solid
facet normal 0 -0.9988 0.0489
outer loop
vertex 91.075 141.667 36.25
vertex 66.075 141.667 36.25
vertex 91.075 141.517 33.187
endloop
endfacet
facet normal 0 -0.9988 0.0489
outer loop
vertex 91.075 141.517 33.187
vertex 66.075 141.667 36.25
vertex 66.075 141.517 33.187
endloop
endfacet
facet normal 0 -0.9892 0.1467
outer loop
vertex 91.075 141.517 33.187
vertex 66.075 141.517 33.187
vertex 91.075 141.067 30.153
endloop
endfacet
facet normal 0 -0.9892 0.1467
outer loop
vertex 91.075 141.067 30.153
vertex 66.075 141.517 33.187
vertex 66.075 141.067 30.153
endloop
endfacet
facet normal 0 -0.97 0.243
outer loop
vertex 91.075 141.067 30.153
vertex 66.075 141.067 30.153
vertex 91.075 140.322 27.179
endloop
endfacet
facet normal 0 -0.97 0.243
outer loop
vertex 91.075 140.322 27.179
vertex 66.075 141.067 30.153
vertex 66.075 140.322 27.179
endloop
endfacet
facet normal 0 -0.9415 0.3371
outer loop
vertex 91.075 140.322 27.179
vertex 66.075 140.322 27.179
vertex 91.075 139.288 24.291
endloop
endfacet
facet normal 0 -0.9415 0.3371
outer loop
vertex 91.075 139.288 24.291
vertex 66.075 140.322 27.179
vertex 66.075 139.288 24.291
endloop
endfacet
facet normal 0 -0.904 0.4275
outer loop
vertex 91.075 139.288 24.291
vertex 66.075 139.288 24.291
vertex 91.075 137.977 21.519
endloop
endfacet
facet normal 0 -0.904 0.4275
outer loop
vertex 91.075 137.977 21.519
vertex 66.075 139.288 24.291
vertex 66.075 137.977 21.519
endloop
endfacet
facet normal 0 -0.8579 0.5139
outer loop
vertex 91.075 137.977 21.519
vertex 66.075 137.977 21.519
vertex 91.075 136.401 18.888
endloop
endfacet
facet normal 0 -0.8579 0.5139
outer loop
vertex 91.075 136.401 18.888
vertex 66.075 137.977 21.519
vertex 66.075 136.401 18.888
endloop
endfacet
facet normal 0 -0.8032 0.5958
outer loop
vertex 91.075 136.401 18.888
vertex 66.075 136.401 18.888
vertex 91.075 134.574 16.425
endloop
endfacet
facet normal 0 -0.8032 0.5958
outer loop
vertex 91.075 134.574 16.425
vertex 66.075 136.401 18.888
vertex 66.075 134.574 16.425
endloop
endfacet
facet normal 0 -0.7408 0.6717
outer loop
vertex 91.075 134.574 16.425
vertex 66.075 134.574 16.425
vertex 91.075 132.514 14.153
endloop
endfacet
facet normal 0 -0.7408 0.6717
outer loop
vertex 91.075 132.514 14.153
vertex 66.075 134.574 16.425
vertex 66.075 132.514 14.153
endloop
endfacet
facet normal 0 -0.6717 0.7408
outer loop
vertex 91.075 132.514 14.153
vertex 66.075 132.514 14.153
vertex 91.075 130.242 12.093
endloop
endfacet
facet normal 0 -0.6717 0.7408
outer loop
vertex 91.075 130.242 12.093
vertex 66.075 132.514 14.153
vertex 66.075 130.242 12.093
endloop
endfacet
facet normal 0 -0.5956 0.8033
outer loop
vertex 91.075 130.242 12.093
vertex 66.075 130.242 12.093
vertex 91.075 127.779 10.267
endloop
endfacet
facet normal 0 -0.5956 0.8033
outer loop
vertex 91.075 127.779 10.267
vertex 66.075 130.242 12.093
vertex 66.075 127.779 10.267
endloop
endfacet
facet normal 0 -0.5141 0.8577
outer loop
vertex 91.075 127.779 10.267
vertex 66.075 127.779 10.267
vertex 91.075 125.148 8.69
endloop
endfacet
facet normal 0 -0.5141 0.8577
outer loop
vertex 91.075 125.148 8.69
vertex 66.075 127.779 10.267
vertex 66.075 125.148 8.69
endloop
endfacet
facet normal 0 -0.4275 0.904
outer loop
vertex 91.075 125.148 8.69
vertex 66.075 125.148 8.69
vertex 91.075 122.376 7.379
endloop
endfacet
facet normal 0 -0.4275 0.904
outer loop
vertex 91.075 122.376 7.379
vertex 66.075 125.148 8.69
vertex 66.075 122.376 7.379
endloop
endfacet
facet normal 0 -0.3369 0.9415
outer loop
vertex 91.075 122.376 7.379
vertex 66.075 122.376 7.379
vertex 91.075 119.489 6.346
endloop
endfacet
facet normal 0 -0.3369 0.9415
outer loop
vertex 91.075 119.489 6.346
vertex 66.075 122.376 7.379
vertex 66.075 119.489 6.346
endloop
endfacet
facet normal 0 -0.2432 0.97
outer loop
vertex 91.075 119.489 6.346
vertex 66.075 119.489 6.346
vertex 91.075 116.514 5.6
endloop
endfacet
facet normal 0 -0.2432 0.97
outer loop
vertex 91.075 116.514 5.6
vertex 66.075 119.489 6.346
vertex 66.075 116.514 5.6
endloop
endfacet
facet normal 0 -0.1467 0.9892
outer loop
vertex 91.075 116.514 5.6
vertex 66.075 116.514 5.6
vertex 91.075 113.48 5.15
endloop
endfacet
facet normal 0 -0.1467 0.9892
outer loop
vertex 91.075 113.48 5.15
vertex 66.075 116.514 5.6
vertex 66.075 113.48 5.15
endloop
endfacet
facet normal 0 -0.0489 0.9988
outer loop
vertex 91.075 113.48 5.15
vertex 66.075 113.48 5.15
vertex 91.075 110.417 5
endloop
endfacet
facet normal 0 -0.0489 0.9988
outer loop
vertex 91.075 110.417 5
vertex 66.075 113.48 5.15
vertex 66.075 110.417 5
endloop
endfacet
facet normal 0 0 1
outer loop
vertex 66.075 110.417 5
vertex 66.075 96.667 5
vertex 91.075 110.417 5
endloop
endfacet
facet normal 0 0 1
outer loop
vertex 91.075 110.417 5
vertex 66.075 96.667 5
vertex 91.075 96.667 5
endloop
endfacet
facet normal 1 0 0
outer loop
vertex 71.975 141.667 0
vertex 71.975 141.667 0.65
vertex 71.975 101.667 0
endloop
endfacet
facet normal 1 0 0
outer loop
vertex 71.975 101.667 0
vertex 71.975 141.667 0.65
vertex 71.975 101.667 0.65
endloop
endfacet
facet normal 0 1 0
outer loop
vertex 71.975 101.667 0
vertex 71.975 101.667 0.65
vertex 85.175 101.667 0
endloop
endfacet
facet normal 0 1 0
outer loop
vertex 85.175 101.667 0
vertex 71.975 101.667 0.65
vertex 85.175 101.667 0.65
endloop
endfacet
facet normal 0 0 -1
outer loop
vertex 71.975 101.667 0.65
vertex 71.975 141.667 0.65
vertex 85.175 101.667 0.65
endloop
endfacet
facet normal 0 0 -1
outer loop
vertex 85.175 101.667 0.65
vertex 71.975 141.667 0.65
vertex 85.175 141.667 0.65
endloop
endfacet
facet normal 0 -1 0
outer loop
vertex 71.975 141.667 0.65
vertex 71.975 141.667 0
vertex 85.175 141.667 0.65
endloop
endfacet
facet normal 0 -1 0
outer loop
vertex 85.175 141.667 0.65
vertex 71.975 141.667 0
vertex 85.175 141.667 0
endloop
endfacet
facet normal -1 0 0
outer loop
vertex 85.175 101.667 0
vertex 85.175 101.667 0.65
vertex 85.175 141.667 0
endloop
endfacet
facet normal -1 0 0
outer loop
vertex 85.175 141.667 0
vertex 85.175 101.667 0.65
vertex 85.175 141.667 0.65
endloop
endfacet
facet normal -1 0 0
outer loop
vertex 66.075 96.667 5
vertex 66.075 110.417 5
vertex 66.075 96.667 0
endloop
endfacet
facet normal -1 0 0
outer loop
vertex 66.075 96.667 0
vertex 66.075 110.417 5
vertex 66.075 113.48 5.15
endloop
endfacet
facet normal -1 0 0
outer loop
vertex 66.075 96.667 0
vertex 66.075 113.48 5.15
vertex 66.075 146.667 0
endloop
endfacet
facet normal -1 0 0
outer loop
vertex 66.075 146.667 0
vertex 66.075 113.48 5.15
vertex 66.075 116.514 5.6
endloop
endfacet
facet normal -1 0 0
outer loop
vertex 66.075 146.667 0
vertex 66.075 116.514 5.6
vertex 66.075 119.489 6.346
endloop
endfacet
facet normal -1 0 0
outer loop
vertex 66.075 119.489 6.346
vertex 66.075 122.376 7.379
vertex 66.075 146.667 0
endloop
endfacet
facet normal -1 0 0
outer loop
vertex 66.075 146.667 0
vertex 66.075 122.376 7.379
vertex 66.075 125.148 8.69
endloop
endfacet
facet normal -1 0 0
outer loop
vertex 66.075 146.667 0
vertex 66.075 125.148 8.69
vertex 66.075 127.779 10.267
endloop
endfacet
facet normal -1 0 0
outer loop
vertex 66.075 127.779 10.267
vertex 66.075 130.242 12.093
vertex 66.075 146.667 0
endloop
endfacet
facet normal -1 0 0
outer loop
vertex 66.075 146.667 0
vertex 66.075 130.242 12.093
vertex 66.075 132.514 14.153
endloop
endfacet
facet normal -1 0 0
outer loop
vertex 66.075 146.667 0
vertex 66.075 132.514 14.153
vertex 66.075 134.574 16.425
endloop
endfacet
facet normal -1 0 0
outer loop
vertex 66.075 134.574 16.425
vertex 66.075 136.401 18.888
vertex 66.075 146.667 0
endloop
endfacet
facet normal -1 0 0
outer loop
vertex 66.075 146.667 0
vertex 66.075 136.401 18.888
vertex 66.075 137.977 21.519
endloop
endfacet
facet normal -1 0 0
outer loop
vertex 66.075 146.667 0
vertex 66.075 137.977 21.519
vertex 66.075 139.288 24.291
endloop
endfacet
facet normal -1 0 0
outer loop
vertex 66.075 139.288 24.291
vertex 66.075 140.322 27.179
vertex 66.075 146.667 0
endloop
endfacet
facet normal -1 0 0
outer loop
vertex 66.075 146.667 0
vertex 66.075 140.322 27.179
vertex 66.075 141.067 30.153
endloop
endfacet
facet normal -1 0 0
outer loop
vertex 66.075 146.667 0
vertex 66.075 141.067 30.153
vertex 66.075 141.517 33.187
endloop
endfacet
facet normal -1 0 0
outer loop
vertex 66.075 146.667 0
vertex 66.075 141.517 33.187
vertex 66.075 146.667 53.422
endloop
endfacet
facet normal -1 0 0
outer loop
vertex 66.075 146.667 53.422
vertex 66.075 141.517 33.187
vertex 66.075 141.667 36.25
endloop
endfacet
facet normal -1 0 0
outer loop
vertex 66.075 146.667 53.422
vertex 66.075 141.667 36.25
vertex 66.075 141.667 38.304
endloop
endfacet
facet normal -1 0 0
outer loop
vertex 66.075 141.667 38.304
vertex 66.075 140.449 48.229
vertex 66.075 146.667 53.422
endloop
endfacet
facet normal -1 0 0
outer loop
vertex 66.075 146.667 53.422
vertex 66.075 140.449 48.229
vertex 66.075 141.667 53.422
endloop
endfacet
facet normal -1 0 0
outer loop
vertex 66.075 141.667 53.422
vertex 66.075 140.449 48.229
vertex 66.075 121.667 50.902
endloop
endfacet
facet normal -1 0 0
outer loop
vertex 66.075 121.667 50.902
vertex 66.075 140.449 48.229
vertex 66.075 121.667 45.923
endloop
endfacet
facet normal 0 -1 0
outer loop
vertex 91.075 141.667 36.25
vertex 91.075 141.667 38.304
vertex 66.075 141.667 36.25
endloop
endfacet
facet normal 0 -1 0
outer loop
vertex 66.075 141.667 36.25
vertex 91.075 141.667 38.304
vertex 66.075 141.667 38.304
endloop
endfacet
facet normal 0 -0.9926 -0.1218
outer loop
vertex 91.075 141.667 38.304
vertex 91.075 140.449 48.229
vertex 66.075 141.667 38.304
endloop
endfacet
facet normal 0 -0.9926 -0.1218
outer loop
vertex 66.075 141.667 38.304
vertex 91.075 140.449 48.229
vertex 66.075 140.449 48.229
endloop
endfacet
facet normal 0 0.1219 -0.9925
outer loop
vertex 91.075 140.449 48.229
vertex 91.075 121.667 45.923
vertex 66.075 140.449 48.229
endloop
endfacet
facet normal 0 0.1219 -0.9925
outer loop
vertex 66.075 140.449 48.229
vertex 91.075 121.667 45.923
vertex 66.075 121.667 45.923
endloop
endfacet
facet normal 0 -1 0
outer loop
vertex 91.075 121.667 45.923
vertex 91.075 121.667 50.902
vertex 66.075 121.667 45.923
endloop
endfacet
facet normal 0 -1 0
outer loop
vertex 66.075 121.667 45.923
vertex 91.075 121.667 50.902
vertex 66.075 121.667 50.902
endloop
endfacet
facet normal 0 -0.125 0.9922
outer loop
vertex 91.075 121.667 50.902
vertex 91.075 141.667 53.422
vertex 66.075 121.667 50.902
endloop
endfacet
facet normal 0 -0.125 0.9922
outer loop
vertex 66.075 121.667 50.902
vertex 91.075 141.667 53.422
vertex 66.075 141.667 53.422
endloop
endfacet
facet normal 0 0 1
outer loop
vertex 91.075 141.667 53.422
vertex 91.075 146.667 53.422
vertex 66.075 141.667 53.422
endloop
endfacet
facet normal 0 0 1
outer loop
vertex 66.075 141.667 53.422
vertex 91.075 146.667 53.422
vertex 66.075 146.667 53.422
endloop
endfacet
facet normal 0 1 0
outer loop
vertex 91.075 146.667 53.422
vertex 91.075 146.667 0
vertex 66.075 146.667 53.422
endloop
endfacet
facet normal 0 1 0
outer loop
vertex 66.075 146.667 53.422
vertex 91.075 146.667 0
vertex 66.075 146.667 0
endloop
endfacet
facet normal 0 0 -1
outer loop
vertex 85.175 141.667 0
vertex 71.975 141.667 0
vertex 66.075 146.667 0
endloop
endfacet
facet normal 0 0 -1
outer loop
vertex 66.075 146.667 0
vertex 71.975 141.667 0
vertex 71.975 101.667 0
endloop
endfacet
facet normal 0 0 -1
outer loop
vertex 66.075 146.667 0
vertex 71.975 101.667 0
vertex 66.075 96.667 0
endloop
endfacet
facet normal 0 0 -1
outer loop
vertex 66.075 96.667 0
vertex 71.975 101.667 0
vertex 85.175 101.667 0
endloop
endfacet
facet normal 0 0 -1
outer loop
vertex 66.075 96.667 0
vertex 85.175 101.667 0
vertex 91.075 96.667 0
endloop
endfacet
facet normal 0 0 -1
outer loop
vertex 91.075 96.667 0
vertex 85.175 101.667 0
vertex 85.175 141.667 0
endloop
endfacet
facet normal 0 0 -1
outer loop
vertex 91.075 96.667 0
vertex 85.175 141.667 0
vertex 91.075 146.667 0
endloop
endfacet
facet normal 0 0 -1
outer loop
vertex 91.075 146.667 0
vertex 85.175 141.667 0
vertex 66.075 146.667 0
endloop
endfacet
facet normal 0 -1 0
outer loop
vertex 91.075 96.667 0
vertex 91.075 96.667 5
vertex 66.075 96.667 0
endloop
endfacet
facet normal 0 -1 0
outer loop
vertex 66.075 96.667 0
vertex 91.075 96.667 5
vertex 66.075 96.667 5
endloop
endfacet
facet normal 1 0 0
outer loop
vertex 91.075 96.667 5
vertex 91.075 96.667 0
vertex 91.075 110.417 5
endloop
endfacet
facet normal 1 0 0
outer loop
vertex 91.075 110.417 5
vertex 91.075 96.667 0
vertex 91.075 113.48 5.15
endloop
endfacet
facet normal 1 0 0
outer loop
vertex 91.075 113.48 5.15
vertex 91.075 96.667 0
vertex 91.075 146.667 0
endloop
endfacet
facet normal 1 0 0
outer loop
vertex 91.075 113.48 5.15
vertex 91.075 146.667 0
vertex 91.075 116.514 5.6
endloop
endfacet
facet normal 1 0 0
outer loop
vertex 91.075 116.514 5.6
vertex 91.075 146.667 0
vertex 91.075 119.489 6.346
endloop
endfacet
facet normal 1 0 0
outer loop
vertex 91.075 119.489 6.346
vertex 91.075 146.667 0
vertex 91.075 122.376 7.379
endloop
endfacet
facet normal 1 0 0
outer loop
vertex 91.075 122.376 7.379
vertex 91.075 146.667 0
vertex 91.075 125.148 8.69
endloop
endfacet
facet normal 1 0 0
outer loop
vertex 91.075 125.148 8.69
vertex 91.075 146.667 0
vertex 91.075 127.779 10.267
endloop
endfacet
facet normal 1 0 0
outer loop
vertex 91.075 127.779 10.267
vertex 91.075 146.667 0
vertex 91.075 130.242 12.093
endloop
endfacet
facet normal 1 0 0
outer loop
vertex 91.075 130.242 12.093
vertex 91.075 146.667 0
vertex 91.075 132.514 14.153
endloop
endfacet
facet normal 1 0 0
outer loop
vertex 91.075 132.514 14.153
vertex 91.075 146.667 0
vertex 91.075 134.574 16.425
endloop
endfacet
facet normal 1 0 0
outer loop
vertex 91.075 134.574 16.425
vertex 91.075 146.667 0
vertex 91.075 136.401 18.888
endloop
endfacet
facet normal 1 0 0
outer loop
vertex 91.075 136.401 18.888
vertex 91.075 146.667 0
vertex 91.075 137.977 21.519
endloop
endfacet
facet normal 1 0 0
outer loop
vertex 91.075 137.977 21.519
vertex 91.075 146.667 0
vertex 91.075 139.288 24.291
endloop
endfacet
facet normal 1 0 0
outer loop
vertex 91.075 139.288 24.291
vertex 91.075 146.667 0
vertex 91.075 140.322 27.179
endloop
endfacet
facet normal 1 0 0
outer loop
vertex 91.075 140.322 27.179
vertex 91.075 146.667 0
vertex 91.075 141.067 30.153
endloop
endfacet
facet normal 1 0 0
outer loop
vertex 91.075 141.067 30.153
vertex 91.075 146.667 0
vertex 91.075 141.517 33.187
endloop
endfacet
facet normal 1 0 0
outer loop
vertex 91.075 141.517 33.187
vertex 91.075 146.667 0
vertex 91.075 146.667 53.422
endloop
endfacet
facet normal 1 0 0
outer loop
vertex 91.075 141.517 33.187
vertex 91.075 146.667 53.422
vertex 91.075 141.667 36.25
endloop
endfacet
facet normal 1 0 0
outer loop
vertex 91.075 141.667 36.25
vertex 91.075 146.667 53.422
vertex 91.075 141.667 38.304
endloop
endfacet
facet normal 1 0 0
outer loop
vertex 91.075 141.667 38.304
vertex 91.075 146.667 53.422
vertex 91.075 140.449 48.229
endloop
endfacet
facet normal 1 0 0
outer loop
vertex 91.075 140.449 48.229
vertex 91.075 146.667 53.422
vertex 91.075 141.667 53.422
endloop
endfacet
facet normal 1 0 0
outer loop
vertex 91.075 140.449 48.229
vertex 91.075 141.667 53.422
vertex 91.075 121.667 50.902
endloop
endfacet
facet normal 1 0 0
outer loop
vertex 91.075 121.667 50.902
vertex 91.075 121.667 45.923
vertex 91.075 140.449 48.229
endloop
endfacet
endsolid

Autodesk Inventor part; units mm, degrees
ref_plane "XZ Plane" through (0, 0, 0) normal (0, 1, 0) x (-1, 0, 0)
ref_plane "XY Plane" through (0, 0, 0) normal (0, 0, 1) x (1, 0, 0)
ref_plane "Work Plane1" through (78.575, 0, 0) normal (1, 0, 0) x (0, 1, 0)
sketch "Sketch2" plane through (78.575, 0, 0) normal (1, 0, 0) x (0, 1, 0)
  line L0 (-170.29, 0) -> (141.6673, 38.3035) projected
  line L1 (141.6673, 38.3035) -> (140.4486, 48.229) projected
  line L2 (-171.5087, 9.9255) -> (140.4486, 48.229) projected
  line L3 (-170.29, 0) -> (-171.5087, 9.9255) projected
  line L4 (-304.8, 0) -> (304.8, 0) projected
  line L5 (-304.8, 0) -> (-304.8, -25.4) projected
  line L6 (304.8, -25.4) -> (-304.8, -25.4) projected
  line L7 (304.8, 0) -> (304.8, -25.4) projected
  line L8 (141.6673, 0) -> (146.6673, 0)
  line L9 (146.6673, 0) -> (146.6673, 53.4221)
  line L10 (146.6673, 53.4221) -> (141.6673, 53.4221)
  line L11 (141.6673, 53.4221) -> (141.6673, 0)
  line L12 (141.6673, 53.4221) -> (121.6673, 53.4221)
  line L13 (121.6673, 53.4221) -> (121.6673, 38.3035)
  line L14 (121.6673, 38.3035) -> (141.6673, 38.3035)
  line L15 (141.6673, 38.3035) -> (141.6673, 53.4221)
  line L16 (141.6673, 38.3035) -> (140.4486, 48.229)
  line L17 (121.6673, 45.8628) -> (140.4486, 48.229)
  line L18 (146.6673, 0) -> (96.6673, 0)
  line L19 (96.6673, 0) -> (96.6673, 5)
  line L20 (96.6673, 5) -> (146.6673, 5)
  line L21 (146.6673, 5) -> (146.6673, 0)
  line L22 (141.6673, 53.4221) -> (121.6673, 50.9023)
  line L23 (101.6673, 0) -> (141.6673, 0)
  line L24 (141.6673, 0) -> (141.6673, 0.65)
  line L25 (141.6673, 0.65) -> (101.6673, 0.65)
  line L26 (101.6673, 0.65) -> (101.6673, 0)
  point P0 (0, 0)
  point P1 (141.6673, 5)
  point P2 (121.6673, 45.9229)
  point P3 (141.6673, 0.65)
  dimension "d2" = 5
  dimension "d3" = 20
  dimension "d4" = 50
  dimension "d5" = 5
  dimension "d6" = 5
  dimension "d7" = 40
  dimension "d8" = 5
  dimension "d9" = 0.65
extrude "Extrusion1" add sketch "Sketch2" along normal mid plane 25 contours L1 L2 L13 L22 L11 | L11 L10 L9 L20 | L19 L20 L11 L25 L26 L4 | L20 L9 L4 L11 | L26 L25 L11 L4
extrude "Extrusion2" cut sketch "Sketch2" along normal mid plane 13.2 contours L26 L25 L11 L4
fillet "Fillet1" radius 31.25 1 edges at (78.575, 141.6673, 5)
properties part number "coverHolder"
